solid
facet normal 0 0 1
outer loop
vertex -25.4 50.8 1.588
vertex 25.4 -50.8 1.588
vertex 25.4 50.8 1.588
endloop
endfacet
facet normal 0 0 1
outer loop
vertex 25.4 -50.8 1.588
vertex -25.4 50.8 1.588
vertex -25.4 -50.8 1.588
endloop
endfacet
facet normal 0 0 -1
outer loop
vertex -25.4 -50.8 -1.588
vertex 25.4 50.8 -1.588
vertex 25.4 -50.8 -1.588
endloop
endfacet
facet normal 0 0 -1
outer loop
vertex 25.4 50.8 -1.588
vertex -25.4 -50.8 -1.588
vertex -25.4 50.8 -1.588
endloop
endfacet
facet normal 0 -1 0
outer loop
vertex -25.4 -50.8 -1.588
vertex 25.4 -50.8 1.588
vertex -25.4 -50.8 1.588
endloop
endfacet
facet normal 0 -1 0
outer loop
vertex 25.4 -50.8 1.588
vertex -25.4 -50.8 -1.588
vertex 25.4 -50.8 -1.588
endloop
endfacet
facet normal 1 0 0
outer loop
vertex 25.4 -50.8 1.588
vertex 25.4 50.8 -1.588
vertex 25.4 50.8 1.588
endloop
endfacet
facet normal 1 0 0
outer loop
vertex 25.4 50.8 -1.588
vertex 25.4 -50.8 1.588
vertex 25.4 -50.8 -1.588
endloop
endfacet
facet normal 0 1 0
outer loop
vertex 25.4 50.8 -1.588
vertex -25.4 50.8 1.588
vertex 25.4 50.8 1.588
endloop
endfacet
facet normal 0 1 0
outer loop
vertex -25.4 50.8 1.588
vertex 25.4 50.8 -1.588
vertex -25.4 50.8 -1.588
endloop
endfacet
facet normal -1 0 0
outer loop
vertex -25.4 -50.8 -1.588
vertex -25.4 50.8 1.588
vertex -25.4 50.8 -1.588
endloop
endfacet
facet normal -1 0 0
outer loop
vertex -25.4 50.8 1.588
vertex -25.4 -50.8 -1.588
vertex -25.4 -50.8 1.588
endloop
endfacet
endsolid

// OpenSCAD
// ========================================
// a 2 by 4 by 0.125 inch plate
// NeuroCAD canonical IR; dimensions are millimetres
// ========================================
$fn = 48;

cube(size=[50.8, 101.6, 3.175], center=true);
